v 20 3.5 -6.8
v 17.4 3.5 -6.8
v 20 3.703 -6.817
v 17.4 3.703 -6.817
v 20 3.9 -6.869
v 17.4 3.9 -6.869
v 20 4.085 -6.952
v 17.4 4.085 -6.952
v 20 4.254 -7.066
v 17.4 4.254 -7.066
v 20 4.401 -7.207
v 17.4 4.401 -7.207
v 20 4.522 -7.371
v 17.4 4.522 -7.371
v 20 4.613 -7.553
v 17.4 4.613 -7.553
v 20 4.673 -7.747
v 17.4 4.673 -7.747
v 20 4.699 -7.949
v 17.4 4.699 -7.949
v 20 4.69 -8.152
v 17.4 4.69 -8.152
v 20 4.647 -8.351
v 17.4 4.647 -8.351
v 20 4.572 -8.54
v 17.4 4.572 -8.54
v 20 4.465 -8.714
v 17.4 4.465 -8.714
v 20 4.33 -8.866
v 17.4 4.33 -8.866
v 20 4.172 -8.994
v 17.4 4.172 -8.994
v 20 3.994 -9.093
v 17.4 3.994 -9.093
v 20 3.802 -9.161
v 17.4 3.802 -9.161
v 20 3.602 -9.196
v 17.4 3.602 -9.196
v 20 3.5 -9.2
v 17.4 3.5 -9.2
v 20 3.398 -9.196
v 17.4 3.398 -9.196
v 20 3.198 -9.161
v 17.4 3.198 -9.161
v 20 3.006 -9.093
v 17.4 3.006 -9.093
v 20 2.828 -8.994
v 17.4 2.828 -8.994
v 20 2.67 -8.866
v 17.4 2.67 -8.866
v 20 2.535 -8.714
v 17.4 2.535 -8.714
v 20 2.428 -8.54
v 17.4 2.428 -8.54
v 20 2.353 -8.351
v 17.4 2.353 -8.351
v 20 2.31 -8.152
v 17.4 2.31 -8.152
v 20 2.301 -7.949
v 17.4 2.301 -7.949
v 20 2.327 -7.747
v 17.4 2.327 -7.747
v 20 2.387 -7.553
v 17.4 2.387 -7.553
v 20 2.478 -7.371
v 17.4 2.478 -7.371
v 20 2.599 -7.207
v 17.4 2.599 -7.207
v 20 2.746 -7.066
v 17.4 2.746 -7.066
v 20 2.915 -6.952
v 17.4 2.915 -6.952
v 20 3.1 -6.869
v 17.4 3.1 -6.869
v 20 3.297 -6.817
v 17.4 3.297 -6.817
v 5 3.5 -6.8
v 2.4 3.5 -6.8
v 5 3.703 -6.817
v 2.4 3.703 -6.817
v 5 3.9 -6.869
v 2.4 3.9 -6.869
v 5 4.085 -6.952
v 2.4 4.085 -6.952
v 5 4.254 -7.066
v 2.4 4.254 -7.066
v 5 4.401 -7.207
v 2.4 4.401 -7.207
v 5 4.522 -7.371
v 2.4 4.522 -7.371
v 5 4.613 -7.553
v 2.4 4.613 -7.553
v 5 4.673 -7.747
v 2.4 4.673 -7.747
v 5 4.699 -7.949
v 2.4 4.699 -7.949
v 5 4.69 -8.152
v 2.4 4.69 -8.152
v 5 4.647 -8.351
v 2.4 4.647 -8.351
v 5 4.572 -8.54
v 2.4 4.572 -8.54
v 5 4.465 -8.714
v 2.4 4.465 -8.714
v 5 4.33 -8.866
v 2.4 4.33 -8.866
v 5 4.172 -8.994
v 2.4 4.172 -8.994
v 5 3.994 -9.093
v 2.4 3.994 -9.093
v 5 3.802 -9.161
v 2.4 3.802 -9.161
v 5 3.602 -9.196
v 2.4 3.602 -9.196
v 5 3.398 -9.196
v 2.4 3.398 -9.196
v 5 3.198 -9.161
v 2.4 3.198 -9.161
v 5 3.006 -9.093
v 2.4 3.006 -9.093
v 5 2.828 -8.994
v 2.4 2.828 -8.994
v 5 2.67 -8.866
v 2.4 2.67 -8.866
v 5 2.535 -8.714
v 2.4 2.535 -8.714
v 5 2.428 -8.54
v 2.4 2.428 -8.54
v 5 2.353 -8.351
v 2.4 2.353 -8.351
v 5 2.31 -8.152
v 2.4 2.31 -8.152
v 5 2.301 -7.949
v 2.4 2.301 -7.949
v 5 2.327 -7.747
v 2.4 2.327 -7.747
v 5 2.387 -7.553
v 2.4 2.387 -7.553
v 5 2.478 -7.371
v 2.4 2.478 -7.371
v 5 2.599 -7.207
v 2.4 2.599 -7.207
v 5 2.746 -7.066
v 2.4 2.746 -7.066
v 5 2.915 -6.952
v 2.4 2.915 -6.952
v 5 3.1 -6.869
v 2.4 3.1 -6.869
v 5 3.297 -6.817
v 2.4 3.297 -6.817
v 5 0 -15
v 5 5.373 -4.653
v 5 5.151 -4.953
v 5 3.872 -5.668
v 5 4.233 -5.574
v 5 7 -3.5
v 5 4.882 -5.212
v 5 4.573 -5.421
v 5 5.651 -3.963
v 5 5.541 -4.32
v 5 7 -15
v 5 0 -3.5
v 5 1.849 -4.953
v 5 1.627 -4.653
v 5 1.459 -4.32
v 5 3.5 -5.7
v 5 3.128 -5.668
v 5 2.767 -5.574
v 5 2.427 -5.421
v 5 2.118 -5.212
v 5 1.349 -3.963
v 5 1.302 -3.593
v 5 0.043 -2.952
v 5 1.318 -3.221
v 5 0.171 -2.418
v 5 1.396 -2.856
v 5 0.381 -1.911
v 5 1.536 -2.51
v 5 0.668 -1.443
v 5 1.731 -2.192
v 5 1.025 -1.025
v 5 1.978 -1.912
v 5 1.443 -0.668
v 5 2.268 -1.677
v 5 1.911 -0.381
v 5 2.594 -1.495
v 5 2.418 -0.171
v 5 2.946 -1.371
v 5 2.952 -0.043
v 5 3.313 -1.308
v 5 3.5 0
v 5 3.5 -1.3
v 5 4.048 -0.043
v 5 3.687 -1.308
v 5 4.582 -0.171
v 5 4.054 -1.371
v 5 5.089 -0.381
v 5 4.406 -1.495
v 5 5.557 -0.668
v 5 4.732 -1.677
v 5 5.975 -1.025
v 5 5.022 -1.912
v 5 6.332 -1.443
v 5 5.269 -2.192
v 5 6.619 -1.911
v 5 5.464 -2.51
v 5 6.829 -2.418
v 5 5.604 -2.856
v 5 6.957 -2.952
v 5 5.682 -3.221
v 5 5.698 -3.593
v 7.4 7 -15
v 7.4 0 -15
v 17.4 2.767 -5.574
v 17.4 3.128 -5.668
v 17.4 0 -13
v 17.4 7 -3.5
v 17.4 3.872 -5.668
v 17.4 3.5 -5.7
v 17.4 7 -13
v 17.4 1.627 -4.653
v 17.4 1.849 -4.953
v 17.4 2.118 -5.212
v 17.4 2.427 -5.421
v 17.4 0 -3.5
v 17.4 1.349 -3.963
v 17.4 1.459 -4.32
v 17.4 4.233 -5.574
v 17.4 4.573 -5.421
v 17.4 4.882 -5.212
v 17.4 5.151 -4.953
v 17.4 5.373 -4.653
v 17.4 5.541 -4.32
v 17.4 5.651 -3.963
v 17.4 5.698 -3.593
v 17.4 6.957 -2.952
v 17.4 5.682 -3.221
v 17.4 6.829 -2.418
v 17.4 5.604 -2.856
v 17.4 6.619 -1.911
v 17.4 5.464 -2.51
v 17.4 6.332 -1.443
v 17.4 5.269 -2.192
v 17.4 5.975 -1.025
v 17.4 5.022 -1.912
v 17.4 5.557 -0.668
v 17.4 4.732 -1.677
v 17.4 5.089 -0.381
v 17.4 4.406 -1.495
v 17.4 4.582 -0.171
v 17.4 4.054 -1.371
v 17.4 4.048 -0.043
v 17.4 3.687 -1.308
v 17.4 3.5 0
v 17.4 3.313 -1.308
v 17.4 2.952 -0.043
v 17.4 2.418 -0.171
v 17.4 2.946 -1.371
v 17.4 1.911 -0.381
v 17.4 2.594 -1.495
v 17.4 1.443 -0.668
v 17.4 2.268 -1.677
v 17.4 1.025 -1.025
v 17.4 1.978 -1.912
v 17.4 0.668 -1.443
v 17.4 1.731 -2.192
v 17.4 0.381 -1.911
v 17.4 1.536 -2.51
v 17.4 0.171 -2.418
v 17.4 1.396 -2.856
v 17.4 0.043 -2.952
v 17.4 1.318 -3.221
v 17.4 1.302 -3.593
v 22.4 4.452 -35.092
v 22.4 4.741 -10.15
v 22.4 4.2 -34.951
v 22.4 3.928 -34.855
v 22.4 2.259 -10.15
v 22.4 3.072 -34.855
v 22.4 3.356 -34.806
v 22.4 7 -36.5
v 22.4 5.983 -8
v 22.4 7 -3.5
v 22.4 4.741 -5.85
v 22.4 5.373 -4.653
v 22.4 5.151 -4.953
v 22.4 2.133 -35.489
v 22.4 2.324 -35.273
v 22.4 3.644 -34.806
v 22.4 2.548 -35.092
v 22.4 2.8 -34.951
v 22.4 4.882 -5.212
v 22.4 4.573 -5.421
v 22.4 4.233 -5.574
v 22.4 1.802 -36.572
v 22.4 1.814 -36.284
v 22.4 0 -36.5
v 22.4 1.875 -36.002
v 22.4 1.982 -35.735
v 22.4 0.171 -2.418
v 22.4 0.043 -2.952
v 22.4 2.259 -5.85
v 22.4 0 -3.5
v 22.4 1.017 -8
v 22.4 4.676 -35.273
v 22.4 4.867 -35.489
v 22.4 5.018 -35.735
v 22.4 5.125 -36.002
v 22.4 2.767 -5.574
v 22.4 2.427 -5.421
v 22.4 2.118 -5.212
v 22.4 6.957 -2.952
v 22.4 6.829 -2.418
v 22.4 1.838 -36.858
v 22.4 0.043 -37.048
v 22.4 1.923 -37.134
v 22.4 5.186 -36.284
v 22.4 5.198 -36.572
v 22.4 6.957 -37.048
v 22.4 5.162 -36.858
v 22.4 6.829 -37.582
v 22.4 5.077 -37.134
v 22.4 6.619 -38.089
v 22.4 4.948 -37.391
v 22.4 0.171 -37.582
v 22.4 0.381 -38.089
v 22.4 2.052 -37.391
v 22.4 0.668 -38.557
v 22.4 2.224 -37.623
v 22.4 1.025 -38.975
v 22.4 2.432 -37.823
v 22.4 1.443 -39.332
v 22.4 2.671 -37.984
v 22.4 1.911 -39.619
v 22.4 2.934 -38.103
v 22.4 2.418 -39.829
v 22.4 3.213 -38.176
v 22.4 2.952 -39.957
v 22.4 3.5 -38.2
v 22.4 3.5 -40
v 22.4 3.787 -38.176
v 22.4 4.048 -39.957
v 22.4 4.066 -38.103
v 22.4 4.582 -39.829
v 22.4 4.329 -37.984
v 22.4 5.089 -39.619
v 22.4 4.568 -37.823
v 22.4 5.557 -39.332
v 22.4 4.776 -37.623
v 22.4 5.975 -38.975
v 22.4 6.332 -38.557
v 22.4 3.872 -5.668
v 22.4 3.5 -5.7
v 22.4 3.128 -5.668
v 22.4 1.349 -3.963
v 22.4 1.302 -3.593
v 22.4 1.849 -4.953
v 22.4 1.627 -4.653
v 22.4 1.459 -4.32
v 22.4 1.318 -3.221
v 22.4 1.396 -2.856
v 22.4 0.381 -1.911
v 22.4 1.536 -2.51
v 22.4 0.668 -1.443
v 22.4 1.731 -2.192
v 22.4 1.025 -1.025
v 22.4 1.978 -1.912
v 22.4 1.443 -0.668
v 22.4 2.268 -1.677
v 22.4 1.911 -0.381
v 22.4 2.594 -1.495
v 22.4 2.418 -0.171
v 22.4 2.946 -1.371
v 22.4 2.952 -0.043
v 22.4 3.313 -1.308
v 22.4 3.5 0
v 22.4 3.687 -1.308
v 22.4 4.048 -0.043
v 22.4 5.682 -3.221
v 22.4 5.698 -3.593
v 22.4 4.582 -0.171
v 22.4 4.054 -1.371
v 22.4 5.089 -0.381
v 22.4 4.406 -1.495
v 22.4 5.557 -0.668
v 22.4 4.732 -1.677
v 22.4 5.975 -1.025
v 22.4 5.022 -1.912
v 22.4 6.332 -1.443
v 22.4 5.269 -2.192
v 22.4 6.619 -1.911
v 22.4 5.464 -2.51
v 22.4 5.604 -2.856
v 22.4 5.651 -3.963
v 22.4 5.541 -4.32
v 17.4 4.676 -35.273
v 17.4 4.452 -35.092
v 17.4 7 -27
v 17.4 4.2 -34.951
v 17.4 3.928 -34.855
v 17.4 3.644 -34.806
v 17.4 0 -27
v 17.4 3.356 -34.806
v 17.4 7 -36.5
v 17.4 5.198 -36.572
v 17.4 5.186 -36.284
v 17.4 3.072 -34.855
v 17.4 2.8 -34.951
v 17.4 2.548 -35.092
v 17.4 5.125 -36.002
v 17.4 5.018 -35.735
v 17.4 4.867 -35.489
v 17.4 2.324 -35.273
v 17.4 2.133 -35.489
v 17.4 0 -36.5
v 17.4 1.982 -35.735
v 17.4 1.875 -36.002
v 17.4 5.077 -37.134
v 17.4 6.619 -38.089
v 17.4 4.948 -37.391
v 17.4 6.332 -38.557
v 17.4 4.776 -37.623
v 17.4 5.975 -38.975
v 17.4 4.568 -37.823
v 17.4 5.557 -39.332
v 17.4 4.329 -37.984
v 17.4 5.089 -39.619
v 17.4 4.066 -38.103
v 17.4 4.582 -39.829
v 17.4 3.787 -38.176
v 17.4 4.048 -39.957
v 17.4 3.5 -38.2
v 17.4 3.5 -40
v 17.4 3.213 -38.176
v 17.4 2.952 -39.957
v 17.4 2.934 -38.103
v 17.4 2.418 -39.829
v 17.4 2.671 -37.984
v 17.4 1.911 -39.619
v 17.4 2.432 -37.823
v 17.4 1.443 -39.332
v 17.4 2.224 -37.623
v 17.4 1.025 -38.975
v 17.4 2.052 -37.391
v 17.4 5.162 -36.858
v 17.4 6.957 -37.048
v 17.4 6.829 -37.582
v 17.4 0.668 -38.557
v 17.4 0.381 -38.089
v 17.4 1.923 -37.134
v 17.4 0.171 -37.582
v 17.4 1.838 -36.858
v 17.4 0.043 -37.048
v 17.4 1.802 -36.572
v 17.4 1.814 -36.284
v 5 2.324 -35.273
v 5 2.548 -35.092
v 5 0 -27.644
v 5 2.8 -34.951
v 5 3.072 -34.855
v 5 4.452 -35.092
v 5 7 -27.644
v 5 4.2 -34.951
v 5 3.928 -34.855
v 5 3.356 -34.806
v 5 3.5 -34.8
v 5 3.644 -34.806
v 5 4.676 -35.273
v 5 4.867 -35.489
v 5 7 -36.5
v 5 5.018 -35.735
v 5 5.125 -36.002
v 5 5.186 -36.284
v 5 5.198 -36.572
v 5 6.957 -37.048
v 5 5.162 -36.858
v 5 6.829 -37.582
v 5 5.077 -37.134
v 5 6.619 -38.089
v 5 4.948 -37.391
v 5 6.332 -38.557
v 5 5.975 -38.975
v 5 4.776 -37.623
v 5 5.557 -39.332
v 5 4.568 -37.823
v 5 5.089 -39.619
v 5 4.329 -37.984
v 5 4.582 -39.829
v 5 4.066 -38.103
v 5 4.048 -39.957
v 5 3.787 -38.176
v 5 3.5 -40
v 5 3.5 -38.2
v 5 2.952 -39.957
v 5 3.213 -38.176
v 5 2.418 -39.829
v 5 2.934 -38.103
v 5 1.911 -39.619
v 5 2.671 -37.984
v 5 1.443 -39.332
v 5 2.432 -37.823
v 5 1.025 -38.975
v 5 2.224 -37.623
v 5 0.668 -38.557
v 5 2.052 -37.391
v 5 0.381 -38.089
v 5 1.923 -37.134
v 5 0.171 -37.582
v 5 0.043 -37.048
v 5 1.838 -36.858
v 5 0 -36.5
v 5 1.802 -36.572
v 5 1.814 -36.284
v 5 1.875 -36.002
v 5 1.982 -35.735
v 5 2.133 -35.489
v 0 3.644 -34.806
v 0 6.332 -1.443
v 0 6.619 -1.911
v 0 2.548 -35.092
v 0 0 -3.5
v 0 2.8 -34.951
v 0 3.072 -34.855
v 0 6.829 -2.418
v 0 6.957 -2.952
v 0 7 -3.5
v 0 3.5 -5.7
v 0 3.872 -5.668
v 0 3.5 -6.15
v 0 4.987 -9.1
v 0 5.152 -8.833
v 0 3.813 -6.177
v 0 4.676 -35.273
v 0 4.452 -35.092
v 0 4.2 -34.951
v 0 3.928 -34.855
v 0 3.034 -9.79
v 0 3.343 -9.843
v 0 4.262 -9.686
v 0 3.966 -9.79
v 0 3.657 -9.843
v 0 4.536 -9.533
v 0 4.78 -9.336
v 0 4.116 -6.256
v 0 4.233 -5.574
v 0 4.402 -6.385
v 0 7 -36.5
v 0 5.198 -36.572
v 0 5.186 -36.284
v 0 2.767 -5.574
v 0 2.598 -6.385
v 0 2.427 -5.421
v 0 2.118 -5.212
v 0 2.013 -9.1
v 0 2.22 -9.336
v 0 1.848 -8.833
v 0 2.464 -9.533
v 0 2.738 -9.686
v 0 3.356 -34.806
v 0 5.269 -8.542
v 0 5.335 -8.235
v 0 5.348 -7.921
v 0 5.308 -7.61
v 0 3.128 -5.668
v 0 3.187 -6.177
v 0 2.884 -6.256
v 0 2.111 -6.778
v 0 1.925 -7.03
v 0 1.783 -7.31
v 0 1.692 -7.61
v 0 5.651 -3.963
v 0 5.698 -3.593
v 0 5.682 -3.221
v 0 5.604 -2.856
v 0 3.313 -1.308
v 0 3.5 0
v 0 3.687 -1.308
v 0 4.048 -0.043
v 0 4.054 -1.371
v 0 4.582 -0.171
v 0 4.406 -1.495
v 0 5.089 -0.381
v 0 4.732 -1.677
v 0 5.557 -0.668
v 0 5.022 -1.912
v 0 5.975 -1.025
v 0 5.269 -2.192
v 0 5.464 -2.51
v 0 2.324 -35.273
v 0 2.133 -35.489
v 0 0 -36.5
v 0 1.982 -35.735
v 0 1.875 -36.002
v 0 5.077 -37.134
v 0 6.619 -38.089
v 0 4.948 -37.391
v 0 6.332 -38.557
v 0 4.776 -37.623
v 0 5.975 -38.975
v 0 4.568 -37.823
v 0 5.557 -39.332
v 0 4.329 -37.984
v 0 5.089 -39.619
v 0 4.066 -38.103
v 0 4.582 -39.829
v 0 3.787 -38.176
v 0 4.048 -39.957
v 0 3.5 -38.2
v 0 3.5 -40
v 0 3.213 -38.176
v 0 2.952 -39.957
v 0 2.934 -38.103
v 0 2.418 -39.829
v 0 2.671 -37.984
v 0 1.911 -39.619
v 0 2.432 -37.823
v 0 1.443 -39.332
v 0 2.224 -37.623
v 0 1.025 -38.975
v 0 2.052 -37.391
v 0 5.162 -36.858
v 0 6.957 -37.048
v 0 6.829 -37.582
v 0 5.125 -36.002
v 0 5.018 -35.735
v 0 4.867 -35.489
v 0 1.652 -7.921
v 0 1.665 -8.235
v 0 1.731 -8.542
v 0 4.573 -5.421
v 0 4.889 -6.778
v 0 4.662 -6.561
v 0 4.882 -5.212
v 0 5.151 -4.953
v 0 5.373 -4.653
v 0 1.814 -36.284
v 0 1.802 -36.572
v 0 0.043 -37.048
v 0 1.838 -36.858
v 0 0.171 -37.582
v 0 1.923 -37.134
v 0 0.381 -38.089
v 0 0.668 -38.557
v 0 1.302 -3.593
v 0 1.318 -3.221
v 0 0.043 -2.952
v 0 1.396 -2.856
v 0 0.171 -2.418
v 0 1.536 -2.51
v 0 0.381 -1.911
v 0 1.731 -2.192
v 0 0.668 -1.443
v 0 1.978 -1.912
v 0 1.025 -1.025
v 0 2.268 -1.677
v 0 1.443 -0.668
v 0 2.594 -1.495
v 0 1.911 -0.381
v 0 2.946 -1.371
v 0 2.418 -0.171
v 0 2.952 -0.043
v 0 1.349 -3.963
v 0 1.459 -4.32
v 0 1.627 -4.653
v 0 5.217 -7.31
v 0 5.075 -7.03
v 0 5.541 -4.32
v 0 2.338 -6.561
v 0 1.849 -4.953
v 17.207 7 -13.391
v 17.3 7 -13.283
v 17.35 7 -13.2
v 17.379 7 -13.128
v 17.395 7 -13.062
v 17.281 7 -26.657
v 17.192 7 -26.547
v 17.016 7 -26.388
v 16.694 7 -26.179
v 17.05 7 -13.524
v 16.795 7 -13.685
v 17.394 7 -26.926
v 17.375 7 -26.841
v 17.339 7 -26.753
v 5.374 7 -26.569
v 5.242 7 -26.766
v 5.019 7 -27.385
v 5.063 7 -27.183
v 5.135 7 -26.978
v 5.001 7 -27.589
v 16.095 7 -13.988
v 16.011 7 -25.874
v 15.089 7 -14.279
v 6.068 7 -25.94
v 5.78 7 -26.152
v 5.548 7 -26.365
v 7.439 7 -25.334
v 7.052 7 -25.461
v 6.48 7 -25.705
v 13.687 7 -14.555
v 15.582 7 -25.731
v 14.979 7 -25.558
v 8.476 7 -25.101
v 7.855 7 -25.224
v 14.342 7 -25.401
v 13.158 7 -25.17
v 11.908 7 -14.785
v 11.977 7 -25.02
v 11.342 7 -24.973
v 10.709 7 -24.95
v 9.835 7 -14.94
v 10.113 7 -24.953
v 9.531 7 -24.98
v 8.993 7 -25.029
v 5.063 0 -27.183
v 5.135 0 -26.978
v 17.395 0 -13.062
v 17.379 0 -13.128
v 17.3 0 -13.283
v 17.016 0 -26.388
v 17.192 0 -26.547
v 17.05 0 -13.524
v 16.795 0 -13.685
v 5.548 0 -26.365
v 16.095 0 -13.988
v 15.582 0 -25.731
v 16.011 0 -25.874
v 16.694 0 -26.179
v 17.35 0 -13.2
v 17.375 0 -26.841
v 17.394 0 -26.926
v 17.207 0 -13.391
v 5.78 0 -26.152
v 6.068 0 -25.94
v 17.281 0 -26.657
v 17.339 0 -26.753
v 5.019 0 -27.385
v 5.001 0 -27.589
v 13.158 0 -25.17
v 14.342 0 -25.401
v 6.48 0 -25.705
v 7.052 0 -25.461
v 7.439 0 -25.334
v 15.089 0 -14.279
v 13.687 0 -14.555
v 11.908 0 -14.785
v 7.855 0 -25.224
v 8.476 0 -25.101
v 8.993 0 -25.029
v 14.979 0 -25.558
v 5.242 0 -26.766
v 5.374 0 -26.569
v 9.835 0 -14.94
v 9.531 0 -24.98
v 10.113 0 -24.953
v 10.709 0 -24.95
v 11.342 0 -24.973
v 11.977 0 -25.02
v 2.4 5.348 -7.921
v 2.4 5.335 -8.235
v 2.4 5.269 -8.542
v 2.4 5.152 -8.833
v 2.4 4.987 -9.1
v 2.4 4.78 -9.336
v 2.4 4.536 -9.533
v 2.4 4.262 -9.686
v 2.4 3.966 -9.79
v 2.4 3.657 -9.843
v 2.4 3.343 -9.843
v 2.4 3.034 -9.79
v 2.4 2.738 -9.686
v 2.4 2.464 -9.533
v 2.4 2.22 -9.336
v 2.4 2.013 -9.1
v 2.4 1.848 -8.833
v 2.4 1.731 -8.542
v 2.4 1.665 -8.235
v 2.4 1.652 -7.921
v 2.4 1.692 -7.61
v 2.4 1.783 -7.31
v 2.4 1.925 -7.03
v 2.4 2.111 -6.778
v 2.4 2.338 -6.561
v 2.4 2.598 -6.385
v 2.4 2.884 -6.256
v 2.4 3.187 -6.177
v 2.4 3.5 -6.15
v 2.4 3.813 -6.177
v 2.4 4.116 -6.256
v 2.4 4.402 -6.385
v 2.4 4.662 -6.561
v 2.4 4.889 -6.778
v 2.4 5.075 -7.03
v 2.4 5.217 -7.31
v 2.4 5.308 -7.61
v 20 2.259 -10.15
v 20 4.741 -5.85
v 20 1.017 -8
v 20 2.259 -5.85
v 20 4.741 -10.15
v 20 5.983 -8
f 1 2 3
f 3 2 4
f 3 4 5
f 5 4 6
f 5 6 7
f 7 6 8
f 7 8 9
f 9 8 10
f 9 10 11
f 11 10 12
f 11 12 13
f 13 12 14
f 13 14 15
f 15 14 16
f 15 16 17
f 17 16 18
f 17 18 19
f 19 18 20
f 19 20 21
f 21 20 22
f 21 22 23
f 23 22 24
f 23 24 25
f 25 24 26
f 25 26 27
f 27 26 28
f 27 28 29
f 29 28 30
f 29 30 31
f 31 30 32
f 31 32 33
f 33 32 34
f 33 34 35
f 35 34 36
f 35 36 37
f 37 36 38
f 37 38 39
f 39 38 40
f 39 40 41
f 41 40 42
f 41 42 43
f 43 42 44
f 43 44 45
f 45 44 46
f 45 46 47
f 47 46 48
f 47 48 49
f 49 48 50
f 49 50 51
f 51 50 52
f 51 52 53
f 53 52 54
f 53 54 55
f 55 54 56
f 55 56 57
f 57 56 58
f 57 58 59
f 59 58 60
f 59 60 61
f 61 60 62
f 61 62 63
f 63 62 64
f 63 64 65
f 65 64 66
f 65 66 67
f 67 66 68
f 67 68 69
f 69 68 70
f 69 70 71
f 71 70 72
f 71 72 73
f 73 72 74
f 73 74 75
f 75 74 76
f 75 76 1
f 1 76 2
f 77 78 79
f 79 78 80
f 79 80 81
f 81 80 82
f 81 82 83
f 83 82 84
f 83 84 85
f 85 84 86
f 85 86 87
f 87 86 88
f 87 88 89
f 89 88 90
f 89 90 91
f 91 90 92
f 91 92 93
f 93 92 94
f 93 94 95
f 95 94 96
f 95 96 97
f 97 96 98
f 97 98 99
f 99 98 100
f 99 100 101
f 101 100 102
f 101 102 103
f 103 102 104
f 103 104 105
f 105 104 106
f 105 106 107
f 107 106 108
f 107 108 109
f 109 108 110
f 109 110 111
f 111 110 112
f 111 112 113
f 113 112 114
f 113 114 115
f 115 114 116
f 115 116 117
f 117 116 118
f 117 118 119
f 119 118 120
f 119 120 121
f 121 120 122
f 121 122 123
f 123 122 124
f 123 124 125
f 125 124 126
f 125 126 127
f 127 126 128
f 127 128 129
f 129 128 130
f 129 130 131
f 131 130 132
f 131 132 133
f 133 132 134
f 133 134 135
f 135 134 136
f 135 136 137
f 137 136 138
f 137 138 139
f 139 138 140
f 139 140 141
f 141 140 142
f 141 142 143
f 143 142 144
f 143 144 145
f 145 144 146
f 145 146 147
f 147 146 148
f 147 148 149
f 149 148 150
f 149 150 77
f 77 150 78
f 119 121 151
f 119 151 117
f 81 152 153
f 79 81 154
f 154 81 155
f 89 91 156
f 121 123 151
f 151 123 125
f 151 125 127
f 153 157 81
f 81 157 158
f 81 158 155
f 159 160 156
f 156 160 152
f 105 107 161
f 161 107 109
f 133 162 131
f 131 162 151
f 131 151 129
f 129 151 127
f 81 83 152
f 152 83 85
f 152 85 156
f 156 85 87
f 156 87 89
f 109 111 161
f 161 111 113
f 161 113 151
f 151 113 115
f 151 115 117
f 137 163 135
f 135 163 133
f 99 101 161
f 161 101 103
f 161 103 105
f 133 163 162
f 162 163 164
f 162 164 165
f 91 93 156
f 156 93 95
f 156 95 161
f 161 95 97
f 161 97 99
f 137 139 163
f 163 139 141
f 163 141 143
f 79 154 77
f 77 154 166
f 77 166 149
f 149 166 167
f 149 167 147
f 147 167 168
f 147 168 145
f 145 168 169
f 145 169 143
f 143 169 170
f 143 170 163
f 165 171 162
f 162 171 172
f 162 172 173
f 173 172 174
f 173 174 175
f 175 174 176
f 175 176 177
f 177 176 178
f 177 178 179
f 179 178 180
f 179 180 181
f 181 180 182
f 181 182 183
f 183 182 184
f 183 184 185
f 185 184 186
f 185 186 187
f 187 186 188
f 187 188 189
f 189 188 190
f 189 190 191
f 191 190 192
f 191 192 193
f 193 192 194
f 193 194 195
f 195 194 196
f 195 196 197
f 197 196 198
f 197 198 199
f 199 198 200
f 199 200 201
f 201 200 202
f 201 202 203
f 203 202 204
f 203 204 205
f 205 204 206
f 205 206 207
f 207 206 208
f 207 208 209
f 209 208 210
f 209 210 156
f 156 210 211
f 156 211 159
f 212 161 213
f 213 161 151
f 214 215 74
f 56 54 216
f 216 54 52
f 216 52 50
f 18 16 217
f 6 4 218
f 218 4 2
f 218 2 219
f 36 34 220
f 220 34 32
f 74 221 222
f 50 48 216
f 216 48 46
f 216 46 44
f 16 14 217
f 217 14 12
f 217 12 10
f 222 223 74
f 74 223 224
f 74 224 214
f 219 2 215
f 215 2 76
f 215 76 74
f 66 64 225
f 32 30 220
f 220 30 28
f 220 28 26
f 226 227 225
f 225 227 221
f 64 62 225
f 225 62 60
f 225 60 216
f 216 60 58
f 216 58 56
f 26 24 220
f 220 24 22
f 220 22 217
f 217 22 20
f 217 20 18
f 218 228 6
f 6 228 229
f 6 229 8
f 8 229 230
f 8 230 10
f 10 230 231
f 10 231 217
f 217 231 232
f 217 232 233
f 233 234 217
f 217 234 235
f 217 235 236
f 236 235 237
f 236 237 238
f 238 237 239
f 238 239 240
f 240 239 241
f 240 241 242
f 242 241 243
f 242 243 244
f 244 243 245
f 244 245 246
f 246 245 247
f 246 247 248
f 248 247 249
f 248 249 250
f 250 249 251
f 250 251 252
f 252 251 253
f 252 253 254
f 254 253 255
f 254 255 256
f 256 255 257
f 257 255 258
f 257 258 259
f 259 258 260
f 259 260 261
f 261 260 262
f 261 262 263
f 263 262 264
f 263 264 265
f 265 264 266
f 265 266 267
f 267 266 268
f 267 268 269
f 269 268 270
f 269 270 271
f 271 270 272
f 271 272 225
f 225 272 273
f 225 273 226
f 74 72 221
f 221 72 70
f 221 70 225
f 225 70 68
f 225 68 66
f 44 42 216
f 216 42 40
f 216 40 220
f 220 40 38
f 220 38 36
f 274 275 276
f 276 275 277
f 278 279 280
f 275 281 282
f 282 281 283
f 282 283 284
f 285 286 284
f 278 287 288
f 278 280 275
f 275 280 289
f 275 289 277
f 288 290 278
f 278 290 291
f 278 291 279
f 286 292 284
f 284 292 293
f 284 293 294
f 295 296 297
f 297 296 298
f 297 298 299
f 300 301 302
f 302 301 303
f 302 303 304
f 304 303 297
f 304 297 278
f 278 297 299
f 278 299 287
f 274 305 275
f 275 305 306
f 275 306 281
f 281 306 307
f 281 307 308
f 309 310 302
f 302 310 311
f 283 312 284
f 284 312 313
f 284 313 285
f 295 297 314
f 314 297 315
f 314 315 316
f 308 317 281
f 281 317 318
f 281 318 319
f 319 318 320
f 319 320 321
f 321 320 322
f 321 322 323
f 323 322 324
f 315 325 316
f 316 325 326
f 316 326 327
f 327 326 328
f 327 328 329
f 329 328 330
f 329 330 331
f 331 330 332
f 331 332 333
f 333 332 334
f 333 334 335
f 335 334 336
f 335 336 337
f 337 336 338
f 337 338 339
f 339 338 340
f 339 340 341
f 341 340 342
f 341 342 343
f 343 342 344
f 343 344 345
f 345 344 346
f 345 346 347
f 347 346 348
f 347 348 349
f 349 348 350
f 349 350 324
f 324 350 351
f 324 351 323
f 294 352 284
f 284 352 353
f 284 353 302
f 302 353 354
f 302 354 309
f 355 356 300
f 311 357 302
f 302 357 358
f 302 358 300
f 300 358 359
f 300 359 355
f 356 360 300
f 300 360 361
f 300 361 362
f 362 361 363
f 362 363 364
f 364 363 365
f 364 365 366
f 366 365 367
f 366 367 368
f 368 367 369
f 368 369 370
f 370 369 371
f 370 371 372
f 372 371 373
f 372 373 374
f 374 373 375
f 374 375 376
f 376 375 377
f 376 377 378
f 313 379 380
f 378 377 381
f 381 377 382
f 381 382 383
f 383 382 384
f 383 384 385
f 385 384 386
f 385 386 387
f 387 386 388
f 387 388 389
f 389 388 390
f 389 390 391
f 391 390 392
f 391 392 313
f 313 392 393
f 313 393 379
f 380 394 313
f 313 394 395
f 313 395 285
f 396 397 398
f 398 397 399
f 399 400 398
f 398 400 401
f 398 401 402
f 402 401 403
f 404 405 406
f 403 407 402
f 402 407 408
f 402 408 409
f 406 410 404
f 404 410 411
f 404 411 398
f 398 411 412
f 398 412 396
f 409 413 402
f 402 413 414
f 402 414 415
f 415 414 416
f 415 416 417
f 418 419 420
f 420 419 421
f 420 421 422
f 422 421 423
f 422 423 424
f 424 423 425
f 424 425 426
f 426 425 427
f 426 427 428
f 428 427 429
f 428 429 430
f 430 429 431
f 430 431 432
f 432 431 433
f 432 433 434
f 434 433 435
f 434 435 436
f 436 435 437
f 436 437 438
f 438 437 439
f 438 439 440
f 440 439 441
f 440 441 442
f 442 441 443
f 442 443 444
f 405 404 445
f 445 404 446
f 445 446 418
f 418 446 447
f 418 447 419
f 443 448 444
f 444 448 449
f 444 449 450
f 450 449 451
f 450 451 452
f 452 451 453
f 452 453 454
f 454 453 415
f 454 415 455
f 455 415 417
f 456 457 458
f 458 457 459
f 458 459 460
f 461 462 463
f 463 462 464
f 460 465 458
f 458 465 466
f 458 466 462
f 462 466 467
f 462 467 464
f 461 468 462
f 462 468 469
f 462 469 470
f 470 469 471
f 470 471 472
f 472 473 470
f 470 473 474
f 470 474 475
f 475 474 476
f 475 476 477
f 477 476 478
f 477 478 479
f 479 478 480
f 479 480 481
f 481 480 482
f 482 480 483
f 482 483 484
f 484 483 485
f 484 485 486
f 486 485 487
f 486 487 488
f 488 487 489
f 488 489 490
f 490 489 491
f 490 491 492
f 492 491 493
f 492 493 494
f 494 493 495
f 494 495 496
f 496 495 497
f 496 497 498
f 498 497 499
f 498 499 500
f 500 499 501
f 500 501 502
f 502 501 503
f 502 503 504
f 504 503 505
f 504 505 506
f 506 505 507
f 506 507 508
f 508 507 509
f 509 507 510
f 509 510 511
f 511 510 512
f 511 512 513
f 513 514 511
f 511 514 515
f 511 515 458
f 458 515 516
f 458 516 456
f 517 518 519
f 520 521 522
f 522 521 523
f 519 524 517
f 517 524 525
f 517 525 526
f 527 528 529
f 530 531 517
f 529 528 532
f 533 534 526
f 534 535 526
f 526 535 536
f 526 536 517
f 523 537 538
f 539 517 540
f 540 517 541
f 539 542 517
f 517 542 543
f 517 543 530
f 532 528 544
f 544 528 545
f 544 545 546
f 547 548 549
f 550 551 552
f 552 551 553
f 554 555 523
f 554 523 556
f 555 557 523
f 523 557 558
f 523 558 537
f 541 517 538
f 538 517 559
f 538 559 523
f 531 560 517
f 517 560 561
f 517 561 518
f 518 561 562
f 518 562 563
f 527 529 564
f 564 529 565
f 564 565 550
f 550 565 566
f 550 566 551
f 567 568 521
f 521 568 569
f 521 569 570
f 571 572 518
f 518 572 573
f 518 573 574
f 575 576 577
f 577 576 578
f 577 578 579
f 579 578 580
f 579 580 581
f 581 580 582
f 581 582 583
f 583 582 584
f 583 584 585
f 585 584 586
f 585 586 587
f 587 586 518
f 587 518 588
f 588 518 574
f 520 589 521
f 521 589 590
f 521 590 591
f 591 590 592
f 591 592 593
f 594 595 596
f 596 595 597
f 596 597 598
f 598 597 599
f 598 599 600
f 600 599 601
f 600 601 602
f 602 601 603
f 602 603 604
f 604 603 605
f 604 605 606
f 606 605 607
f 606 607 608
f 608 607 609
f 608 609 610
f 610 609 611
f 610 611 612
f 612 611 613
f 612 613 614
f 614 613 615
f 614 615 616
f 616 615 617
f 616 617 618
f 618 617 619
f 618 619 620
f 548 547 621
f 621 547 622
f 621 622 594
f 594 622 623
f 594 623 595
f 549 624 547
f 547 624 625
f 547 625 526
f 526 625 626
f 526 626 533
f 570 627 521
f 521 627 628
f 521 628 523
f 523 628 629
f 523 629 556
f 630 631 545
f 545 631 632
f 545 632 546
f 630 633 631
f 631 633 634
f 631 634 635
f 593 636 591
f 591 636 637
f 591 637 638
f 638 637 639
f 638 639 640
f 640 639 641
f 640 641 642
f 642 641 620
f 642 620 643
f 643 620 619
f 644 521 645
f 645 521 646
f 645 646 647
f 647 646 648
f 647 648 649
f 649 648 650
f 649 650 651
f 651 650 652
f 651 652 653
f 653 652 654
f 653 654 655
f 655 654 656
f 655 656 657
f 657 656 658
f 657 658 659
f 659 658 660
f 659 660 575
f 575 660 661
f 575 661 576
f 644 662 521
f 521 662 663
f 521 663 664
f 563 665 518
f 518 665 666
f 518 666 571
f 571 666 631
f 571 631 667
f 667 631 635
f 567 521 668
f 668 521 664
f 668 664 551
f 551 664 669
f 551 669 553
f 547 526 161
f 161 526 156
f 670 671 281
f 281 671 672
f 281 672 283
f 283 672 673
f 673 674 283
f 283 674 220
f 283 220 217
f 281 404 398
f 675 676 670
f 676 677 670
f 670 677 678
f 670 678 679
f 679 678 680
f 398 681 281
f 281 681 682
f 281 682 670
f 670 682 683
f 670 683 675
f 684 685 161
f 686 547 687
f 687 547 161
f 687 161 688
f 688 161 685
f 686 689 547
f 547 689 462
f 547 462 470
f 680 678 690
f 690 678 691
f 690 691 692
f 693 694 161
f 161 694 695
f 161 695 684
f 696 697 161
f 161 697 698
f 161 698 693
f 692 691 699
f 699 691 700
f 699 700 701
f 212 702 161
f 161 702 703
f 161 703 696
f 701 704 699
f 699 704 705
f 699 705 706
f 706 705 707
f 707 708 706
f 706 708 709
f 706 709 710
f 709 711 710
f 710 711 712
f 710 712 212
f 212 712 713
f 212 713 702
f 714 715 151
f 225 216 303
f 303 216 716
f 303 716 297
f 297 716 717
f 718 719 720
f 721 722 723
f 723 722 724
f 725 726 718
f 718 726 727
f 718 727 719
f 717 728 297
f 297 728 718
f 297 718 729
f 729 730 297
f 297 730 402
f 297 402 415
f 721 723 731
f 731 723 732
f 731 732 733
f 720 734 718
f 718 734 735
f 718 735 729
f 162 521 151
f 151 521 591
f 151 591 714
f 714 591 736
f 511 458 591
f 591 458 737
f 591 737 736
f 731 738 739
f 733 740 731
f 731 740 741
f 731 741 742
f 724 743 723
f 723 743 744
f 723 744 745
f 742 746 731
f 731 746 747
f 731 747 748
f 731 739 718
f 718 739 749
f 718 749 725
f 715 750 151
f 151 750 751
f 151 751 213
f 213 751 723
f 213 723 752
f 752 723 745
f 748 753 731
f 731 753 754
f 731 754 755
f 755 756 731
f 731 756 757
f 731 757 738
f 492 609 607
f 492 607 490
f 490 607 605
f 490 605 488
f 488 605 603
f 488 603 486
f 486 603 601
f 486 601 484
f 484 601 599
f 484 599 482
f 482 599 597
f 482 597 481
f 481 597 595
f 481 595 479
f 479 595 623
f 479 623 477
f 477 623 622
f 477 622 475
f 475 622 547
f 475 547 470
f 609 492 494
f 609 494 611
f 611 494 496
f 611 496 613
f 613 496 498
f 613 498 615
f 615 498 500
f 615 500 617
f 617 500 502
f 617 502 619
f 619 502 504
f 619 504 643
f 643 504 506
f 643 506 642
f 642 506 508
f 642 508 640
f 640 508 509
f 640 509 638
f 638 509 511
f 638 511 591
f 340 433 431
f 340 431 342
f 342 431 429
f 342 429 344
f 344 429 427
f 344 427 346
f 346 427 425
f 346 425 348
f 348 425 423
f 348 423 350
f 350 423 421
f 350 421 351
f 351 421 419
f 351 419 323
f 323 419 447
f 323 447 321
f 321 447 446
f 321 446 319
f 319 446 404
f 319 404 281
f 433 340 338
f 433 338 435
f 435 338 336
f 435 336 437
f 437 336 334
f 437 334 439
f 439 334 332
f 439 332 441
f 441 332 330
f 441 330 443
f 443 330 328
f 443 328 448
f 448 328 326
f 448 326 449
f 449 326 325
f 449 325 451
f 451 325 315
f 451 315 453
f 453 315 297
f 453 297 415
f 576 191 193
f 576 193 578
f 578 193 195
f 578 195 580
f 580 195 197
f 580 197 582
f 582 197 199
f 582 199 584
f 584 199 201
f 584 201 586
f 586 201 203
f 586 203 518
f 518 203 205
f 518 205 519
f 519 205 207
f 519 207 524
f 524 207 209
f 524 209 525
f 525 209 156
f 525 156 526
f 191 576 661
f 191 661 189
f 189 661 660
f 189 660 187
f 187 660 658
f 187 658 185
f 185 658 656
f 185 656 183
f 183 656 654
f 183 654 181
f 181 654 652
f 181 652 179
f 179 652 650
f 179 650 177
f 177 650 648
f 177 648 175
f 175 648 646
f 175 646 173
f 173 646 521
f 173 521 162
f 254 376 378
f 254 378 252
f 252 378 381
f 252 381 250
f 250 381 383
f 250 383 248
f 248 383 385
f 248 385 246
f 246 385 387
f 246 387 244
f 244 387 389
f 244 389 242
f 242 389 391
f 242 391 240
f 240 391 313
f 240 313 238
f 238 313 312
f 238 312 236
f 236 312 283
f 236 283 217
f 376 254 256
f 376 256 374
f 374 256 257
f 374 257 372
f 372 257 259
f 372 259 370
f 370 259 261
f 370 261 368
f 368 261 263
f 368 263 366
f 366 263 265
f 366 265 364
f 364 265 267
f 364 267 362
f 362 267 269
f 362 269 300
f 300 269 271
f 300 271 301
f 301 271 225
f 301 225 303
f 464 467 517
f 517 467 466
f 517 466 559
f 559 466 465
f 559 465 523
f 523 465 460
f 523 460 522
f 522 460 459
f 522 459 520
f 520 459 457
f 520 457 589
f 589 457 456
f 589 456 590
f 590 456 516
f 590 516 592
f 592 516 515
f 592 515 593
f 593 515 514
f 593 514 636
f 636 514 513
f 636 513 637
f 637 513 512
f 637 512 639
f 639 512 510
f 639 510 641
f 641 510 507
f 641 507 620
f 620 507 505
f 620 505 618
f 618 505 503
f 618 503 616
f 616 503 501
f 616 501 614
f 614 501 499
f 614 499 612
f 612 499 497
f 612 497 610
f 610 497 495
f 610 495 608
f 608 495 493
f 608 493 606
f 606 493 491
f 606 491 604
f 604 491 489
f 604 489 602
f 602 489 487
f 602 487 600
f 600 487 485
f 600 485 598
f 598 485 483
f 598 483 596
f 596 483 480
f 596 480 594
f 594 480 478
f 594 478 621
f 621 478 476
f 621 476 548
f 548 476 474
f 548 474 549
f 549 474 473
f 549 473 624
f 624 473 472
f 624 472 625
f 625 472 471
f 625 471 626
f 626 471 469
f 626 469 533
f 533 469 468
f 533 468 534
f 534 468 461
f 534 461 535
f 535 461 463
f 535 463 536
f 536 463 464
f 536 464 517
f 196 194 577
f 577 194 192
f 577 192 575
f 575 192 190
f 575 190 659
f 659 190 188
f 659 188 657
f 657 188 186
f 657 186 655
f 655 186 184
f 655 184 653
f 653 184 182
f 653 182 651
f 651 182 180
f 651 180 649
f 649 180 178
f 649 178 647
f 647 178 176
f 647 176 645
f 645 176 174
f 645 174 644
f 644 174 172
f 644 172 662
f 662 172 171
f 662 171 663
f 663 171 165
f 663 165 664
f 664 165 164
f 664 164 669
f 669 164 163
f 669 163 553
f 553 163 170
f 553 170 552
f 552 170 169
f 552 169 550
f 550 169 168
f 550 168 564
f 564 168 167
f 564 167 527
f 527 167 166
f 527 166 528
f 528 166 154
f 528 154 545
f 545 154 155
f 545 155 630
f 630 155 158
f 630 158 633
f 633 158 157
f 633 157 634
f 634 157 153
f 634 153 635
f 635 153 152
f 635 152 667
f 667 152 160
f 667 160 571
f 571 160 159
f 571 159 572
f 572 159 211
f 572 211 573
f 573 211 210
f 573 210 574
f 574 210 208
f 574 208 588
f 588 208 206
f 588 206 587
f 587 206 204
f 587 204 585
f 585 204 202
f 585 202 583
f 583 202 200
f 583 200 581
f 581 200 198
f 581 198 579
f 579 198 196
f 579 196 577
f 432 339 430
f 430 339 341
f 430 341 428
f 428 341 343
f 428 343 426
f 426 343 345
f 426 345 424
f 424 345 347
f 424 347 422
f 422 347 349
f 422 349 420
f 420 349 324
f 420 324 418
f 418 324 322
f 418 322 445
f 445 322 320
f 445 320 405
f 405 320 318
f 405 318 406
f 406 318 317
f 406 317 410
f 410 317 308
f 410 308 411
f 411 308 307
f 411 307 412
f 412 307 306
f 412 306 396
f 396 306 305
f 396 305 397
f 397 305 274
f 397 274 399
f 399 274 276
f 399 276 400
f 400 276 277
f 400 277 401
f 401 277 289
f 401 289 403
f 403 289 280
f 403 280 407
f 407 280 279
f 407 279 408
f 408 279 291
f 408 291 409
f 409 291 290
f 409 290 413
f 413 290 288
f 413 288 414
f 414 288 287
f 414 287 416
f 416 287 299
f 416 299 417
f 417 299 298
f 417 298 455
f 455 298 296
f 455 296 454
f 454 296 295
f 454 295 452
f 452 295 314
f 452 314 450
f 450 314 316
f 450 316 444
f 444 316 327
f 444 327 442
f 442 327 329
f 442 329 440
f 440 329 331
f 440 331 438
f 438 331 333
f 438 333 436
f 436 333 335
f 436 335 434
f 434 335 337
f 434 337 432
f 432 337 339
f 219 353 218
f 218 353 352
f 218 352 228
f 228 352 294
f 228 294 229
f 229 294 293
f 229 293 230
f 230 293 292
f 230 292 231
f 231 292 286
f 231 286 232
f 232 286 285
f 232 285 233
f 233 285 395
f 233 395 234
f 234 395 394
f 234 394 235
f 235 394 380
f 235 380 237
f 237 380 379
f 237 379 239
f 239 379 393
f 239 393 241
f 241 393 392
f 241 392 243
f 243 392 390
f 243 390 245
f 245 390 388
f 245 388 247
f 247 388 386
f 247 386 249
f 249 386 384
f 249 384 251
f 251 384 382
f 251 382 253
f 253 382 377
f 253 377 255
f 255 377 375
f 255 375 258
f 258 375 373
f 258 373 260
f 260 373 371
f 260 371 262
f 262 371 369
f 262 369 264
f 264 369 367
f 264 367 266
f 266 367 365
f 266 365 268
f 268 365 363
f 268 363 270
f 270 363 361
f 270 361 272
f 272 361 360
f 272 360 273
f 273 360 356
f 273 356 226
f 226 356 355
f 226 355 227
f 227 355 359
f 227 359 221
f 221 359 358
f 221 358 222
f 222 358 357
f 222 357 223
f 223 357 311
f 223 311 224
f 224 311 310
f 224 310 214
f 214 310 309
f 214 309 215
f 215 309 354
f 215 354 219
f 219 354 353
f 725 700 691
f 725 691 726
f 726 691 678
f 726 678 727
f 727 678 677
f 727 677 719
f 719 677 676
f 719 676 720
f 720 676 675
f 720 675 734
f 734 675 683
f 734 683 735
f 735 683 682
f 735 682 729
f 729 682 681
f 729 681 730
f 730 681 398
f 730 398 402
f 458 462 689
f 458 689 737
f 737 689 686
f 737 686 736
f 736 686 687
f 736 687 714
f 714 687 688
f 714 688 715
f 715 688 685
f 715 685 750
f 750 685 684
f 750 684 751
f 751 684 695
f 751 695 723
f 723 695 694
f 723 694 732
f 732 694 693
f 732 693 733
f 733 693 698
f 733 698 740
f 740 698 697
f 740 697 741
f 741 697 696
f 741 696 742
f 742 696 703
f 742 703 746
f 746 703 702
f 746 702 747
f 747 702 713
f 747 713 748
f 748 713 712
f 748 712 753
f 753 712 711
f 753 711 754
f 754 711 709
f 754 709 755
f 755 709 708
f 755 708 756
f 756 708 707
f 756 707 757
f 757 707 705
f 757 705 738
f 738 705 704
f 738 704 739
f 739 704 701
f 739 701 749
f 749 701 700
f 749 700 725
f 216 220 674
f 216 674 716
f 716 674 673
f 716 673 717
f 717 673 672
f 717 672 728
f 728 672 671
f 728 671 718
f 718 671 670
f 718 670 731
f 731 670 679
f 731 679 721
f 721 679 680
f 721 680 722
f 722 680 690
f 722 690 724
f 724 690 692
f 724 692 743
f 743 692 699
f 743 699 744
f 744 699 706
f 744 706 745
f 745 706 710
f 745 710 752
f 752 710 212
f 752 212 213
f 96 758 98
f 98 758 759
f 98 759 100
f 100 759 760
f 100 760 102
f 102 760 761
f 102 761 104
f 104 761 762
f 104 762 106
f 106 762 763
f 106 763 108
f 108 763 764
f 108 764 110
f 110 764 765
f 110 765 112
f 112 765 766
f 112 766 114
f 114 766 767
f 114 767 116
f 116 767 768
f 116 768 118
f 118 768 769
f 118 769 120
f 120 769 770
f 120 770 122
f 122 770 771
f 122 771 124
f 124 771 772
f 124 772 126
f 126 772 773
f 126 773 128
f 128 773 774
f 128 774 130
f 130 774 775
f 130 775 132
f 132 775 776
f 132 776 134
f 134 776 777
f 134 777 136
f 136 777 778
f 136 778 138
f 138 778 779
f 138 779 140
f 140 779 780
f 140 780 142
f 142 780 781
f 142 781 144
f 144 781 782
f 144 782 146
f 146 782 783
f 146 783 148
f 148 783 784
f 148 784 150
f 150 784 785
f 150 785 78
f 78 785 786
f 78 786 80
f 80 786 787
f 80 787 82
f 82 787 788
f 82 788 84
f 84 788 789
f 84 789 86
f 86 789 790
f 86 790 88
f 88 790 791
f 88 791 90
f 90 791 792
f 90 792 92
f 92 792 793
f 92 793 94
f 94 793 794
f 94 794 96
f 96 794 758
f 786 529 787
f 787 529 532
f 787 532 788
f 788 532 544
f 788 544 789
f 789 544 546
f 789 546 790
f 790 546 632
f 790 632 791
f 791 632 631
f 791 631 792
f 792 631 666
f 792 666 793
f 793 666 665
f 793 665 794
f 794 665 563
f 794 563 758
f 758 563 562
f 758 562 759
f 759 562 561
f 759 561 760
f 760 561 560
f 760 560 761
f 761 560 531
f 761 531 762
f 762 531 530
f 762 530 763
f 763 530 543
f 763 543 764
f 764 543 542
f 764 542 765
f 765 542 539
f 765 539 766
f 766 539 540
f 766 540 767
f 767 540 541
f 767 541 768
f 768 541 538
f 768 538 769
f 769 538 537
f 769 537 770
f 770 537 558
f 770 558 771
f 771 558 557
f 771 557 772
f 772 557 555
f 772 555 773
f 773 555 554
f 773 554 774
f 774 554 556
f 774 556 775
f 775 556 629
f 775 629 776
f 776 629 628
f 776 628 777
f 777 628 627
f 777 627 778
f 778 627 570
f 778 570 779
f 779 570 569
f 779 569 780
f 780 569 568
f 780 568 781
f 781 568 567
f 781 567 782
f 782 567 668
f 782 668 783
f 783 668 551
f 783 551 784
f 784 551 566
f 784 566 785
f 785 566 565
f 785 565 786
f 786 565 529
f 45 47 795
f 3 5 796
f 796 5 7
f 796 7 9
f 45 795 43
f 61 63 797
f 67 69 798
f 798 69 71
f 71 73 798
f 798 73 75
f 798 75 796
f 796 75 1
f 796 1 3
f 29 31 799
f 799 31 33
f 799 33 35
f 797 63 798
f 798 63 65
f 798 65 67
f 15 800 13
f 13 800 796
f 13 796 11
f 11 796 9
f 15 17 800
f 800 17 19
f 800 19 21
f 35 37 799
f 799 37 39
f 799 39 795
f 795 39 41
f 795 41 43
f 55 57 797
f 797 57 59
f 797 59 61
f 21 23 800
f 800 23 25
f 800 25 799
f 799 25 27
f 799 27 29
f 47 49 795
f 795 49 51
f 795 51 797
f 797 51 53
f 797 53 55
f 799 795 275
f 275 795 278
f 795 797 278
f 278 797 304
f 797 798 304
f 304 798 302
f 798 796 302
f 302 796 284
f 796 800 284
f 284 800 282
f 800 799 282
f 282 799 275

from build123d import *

# Parameters (mm, degrees)
BOSS_EXTRUDE1_DEPTH = 7
FILLET1_R           = 3.5
SKETCH2_R           = 2.2
SKETCH2_R_2         = 1.7
CUT_EXTRUDE1_DEPTH  = 47.376287044
FILLET2_SIZE        = 8
FILLET2_SIZE_2      = 2
FILLET3_START       = -1
FILLET3_DEPTH       = 9
FILLET3_2_DEPTH     = 7
SKETCH3_R           = 1.2
CUT_EXTRUDE2_DEPTH  = 47.376287108
SKETCH4_R           = 1.85
CUT_EXTRUDE3_DEPTH  = 2.4
CUT_EXTRUDE4_DEPTH  = 2.4


with BuildPart() as part:
    # Sketch1 → Boss-Extrude1 (new body)
    with BuildSketch(Plane(origin=(0, 0, 0), x_dir=(1, 0, 0), z_dir=(0, 1, 0))):
        Polygon((0, 0), (0, 40), (5, 40), (5, 25), (17.4, 25), (17.4, 40), (22.4, 40), (22.4, 0), (17.4, 0), (17.4, 15), (5, 15), (5, 0), align=None)
    extrude(amount=BOSS_EXTRUDE1_DEPTH)

    # Fillet1
    fillet1_edges = [part.edges().sort_by_distance(p)[0] for p in [
        (2.5, 0, -40),
        (2.5, 7, -40),
        (19.9, 0, -40),
        (19.9, 7, -40),
        (2.5, 0, 0),
        (2.5, 7, 0),
        (19.9, 0, 0),
        (19.9, 7, 0),
    ]]
    fillet(fillet1_edges, radius=FILLET1_R - 0.0001)  # a hair under: the kernel refuses the full size

    # Sketch2 → Cut-Extrude1 (cut, through all)
    with BuildSketch(Plane(origin=(22.4, 0, 0), x_dir=(0, 0, -1), z_dir=(1, 0, 0))):
        with Locations((3.5, 3.5)):
            Circle(SKETCH2_R)
        with Locations((36.5, 3.5)):
            Circle(SKETCH2_R_2)
    extrude(amount=-CUT_EXTRUDE1_DEPTH, mode=Mode.SUBTRACT)

    # Fillet2
    # a fillet whose section is not a circle: 8, 2 mm, written as the material it adds along each edge
    with BuildSketch(Plane(origin=(17.4, 0, -25), x_dir=(-1, 0, 0), z_dir=(0, 1, 0))) as fillet2_piece_1:
        with BuildLine():
            Bezier((FILLET2_SIZE, 0), (0, 0), (0, -FILLET2_SIZE_2), weights=[1, 0.707106781, 1])
            Line((0, -FILLET2_SIZE_2), (0, 0))
            Line((0, 0), (FILLET2_SIZE, 0))
        make_face()
    extrude(amount=7)

    # Fillet3: read off the stored shape, not the designer's step
    # Fillet3 outline → Fillet3 (cut)
    with BuildSketch(Plane(origin=(0, 0, 0), x_dir=(1.0, 3.4671016661374288e-12, 0), z_dir=(-3.4671016661374288e-12, 1.0, 2.5010475807975105e-12)).offset(FILLET3_START)):
        with BuildLine():
            add(Edge.make_bspline(
                [(15.582462981, 25.730719902), (12.297568617, 24.730707285), (9.28088208, 25)],
                knots=[0, 0, 0, 0.430571461, 0.430571461, 0.430571461], degree=2, weights=[1, 0.825748512, 0.80155246]))
            add(Edge.make_bspline(
                [(15.582462981, 25.730719902), (13.182155578, 25), (9.4, 25)],
                knots=[0.440891805, 0.440891805, 0.440891805, 1, 1, 1], degree=2, weights=[0.855599999, 0.836241001, 1]))
            Line((9.4, 25), (9.28088208, 25))
        make_face()
    extrude(amount=FILLET3_DEPTH, mode=Mode.SUBTRACT)

    # Fillet3 2 outline → Fillet3 2 (add)
    with BuildSketch(Plane(origin=(0, 0, 0), x_dir=(1.0, 3.4671016661374288e-12, 0), z_dir=(-3.4671016661374288e-12, 1.0, 2.5010475807975105e-12))):
        with BuildLine():
            Line((5, 25), (9.28088208, 25))
            add(Edge.make_bspline(
                [(9.28088208, 25), (5, 25.382144563), (5, 27.644025125)],
                knots=[0.430571461, 0.430571461, 0.430571461, 1, 1, 1], degree=2, weights=[0.80155246, 0.769553306, 1]))
            Line((5, 27.644025125), (5, 25))
        make_face()
        with BuildLine():
            Line((17.4, 15), (7.4, 15))
            add(Edge.make_bspline(
                [(7.4, 15), (17.4, 15), (17.4, 13)],
                knots=[0, 0, 0, 1, 1, 1], degree=2, weights=[1, 0.707106781, 1]))
            Line((17.4, 13), (17.4, 15))
        make_face()
    extrude(amount=FILLET3_2_DEPTH)

    # Sketch3 → Cut-Extrude2 (cut, through all)
    with BuildSketch(Plane.ZY):
        with Locations((-8, 3.5)):
            Circle(SKETCH3_R)
    extrude(amount=-CUT_EXTRUDE2_DEPTH, mode=Mode.SUBTRACT)

    # Sketch4 → Cut-Extrude3 (cut)
    with BuildSketch(Plane.ZY):
        with Locations((-8, 3.5)):
            Circle(SKETCH4_R)
    extrude(amount=-CUT_EXTRUDE3_DEPTH, mode=Mode.SUBTRACT)

    # Sketch5 → Cut-Extrude4 (cut)
    with BuildSketch(Plane(origin=(22.4, 0, 0), x_dir=(0, 0, -1), z_dir=(1, 0, 0))):
        Polygon((10.15, 4.741303079), (8, 5.982606158), (5.85, 4.741303079), (5.85, 2.258696921), (8, 1.017393842), (10.15, 2.258696921), align=None)
    extrude(amount=-CUT_EXTRUDE4_DEPTH, mode=Mode.SUBTRACT)


solid = part.part
